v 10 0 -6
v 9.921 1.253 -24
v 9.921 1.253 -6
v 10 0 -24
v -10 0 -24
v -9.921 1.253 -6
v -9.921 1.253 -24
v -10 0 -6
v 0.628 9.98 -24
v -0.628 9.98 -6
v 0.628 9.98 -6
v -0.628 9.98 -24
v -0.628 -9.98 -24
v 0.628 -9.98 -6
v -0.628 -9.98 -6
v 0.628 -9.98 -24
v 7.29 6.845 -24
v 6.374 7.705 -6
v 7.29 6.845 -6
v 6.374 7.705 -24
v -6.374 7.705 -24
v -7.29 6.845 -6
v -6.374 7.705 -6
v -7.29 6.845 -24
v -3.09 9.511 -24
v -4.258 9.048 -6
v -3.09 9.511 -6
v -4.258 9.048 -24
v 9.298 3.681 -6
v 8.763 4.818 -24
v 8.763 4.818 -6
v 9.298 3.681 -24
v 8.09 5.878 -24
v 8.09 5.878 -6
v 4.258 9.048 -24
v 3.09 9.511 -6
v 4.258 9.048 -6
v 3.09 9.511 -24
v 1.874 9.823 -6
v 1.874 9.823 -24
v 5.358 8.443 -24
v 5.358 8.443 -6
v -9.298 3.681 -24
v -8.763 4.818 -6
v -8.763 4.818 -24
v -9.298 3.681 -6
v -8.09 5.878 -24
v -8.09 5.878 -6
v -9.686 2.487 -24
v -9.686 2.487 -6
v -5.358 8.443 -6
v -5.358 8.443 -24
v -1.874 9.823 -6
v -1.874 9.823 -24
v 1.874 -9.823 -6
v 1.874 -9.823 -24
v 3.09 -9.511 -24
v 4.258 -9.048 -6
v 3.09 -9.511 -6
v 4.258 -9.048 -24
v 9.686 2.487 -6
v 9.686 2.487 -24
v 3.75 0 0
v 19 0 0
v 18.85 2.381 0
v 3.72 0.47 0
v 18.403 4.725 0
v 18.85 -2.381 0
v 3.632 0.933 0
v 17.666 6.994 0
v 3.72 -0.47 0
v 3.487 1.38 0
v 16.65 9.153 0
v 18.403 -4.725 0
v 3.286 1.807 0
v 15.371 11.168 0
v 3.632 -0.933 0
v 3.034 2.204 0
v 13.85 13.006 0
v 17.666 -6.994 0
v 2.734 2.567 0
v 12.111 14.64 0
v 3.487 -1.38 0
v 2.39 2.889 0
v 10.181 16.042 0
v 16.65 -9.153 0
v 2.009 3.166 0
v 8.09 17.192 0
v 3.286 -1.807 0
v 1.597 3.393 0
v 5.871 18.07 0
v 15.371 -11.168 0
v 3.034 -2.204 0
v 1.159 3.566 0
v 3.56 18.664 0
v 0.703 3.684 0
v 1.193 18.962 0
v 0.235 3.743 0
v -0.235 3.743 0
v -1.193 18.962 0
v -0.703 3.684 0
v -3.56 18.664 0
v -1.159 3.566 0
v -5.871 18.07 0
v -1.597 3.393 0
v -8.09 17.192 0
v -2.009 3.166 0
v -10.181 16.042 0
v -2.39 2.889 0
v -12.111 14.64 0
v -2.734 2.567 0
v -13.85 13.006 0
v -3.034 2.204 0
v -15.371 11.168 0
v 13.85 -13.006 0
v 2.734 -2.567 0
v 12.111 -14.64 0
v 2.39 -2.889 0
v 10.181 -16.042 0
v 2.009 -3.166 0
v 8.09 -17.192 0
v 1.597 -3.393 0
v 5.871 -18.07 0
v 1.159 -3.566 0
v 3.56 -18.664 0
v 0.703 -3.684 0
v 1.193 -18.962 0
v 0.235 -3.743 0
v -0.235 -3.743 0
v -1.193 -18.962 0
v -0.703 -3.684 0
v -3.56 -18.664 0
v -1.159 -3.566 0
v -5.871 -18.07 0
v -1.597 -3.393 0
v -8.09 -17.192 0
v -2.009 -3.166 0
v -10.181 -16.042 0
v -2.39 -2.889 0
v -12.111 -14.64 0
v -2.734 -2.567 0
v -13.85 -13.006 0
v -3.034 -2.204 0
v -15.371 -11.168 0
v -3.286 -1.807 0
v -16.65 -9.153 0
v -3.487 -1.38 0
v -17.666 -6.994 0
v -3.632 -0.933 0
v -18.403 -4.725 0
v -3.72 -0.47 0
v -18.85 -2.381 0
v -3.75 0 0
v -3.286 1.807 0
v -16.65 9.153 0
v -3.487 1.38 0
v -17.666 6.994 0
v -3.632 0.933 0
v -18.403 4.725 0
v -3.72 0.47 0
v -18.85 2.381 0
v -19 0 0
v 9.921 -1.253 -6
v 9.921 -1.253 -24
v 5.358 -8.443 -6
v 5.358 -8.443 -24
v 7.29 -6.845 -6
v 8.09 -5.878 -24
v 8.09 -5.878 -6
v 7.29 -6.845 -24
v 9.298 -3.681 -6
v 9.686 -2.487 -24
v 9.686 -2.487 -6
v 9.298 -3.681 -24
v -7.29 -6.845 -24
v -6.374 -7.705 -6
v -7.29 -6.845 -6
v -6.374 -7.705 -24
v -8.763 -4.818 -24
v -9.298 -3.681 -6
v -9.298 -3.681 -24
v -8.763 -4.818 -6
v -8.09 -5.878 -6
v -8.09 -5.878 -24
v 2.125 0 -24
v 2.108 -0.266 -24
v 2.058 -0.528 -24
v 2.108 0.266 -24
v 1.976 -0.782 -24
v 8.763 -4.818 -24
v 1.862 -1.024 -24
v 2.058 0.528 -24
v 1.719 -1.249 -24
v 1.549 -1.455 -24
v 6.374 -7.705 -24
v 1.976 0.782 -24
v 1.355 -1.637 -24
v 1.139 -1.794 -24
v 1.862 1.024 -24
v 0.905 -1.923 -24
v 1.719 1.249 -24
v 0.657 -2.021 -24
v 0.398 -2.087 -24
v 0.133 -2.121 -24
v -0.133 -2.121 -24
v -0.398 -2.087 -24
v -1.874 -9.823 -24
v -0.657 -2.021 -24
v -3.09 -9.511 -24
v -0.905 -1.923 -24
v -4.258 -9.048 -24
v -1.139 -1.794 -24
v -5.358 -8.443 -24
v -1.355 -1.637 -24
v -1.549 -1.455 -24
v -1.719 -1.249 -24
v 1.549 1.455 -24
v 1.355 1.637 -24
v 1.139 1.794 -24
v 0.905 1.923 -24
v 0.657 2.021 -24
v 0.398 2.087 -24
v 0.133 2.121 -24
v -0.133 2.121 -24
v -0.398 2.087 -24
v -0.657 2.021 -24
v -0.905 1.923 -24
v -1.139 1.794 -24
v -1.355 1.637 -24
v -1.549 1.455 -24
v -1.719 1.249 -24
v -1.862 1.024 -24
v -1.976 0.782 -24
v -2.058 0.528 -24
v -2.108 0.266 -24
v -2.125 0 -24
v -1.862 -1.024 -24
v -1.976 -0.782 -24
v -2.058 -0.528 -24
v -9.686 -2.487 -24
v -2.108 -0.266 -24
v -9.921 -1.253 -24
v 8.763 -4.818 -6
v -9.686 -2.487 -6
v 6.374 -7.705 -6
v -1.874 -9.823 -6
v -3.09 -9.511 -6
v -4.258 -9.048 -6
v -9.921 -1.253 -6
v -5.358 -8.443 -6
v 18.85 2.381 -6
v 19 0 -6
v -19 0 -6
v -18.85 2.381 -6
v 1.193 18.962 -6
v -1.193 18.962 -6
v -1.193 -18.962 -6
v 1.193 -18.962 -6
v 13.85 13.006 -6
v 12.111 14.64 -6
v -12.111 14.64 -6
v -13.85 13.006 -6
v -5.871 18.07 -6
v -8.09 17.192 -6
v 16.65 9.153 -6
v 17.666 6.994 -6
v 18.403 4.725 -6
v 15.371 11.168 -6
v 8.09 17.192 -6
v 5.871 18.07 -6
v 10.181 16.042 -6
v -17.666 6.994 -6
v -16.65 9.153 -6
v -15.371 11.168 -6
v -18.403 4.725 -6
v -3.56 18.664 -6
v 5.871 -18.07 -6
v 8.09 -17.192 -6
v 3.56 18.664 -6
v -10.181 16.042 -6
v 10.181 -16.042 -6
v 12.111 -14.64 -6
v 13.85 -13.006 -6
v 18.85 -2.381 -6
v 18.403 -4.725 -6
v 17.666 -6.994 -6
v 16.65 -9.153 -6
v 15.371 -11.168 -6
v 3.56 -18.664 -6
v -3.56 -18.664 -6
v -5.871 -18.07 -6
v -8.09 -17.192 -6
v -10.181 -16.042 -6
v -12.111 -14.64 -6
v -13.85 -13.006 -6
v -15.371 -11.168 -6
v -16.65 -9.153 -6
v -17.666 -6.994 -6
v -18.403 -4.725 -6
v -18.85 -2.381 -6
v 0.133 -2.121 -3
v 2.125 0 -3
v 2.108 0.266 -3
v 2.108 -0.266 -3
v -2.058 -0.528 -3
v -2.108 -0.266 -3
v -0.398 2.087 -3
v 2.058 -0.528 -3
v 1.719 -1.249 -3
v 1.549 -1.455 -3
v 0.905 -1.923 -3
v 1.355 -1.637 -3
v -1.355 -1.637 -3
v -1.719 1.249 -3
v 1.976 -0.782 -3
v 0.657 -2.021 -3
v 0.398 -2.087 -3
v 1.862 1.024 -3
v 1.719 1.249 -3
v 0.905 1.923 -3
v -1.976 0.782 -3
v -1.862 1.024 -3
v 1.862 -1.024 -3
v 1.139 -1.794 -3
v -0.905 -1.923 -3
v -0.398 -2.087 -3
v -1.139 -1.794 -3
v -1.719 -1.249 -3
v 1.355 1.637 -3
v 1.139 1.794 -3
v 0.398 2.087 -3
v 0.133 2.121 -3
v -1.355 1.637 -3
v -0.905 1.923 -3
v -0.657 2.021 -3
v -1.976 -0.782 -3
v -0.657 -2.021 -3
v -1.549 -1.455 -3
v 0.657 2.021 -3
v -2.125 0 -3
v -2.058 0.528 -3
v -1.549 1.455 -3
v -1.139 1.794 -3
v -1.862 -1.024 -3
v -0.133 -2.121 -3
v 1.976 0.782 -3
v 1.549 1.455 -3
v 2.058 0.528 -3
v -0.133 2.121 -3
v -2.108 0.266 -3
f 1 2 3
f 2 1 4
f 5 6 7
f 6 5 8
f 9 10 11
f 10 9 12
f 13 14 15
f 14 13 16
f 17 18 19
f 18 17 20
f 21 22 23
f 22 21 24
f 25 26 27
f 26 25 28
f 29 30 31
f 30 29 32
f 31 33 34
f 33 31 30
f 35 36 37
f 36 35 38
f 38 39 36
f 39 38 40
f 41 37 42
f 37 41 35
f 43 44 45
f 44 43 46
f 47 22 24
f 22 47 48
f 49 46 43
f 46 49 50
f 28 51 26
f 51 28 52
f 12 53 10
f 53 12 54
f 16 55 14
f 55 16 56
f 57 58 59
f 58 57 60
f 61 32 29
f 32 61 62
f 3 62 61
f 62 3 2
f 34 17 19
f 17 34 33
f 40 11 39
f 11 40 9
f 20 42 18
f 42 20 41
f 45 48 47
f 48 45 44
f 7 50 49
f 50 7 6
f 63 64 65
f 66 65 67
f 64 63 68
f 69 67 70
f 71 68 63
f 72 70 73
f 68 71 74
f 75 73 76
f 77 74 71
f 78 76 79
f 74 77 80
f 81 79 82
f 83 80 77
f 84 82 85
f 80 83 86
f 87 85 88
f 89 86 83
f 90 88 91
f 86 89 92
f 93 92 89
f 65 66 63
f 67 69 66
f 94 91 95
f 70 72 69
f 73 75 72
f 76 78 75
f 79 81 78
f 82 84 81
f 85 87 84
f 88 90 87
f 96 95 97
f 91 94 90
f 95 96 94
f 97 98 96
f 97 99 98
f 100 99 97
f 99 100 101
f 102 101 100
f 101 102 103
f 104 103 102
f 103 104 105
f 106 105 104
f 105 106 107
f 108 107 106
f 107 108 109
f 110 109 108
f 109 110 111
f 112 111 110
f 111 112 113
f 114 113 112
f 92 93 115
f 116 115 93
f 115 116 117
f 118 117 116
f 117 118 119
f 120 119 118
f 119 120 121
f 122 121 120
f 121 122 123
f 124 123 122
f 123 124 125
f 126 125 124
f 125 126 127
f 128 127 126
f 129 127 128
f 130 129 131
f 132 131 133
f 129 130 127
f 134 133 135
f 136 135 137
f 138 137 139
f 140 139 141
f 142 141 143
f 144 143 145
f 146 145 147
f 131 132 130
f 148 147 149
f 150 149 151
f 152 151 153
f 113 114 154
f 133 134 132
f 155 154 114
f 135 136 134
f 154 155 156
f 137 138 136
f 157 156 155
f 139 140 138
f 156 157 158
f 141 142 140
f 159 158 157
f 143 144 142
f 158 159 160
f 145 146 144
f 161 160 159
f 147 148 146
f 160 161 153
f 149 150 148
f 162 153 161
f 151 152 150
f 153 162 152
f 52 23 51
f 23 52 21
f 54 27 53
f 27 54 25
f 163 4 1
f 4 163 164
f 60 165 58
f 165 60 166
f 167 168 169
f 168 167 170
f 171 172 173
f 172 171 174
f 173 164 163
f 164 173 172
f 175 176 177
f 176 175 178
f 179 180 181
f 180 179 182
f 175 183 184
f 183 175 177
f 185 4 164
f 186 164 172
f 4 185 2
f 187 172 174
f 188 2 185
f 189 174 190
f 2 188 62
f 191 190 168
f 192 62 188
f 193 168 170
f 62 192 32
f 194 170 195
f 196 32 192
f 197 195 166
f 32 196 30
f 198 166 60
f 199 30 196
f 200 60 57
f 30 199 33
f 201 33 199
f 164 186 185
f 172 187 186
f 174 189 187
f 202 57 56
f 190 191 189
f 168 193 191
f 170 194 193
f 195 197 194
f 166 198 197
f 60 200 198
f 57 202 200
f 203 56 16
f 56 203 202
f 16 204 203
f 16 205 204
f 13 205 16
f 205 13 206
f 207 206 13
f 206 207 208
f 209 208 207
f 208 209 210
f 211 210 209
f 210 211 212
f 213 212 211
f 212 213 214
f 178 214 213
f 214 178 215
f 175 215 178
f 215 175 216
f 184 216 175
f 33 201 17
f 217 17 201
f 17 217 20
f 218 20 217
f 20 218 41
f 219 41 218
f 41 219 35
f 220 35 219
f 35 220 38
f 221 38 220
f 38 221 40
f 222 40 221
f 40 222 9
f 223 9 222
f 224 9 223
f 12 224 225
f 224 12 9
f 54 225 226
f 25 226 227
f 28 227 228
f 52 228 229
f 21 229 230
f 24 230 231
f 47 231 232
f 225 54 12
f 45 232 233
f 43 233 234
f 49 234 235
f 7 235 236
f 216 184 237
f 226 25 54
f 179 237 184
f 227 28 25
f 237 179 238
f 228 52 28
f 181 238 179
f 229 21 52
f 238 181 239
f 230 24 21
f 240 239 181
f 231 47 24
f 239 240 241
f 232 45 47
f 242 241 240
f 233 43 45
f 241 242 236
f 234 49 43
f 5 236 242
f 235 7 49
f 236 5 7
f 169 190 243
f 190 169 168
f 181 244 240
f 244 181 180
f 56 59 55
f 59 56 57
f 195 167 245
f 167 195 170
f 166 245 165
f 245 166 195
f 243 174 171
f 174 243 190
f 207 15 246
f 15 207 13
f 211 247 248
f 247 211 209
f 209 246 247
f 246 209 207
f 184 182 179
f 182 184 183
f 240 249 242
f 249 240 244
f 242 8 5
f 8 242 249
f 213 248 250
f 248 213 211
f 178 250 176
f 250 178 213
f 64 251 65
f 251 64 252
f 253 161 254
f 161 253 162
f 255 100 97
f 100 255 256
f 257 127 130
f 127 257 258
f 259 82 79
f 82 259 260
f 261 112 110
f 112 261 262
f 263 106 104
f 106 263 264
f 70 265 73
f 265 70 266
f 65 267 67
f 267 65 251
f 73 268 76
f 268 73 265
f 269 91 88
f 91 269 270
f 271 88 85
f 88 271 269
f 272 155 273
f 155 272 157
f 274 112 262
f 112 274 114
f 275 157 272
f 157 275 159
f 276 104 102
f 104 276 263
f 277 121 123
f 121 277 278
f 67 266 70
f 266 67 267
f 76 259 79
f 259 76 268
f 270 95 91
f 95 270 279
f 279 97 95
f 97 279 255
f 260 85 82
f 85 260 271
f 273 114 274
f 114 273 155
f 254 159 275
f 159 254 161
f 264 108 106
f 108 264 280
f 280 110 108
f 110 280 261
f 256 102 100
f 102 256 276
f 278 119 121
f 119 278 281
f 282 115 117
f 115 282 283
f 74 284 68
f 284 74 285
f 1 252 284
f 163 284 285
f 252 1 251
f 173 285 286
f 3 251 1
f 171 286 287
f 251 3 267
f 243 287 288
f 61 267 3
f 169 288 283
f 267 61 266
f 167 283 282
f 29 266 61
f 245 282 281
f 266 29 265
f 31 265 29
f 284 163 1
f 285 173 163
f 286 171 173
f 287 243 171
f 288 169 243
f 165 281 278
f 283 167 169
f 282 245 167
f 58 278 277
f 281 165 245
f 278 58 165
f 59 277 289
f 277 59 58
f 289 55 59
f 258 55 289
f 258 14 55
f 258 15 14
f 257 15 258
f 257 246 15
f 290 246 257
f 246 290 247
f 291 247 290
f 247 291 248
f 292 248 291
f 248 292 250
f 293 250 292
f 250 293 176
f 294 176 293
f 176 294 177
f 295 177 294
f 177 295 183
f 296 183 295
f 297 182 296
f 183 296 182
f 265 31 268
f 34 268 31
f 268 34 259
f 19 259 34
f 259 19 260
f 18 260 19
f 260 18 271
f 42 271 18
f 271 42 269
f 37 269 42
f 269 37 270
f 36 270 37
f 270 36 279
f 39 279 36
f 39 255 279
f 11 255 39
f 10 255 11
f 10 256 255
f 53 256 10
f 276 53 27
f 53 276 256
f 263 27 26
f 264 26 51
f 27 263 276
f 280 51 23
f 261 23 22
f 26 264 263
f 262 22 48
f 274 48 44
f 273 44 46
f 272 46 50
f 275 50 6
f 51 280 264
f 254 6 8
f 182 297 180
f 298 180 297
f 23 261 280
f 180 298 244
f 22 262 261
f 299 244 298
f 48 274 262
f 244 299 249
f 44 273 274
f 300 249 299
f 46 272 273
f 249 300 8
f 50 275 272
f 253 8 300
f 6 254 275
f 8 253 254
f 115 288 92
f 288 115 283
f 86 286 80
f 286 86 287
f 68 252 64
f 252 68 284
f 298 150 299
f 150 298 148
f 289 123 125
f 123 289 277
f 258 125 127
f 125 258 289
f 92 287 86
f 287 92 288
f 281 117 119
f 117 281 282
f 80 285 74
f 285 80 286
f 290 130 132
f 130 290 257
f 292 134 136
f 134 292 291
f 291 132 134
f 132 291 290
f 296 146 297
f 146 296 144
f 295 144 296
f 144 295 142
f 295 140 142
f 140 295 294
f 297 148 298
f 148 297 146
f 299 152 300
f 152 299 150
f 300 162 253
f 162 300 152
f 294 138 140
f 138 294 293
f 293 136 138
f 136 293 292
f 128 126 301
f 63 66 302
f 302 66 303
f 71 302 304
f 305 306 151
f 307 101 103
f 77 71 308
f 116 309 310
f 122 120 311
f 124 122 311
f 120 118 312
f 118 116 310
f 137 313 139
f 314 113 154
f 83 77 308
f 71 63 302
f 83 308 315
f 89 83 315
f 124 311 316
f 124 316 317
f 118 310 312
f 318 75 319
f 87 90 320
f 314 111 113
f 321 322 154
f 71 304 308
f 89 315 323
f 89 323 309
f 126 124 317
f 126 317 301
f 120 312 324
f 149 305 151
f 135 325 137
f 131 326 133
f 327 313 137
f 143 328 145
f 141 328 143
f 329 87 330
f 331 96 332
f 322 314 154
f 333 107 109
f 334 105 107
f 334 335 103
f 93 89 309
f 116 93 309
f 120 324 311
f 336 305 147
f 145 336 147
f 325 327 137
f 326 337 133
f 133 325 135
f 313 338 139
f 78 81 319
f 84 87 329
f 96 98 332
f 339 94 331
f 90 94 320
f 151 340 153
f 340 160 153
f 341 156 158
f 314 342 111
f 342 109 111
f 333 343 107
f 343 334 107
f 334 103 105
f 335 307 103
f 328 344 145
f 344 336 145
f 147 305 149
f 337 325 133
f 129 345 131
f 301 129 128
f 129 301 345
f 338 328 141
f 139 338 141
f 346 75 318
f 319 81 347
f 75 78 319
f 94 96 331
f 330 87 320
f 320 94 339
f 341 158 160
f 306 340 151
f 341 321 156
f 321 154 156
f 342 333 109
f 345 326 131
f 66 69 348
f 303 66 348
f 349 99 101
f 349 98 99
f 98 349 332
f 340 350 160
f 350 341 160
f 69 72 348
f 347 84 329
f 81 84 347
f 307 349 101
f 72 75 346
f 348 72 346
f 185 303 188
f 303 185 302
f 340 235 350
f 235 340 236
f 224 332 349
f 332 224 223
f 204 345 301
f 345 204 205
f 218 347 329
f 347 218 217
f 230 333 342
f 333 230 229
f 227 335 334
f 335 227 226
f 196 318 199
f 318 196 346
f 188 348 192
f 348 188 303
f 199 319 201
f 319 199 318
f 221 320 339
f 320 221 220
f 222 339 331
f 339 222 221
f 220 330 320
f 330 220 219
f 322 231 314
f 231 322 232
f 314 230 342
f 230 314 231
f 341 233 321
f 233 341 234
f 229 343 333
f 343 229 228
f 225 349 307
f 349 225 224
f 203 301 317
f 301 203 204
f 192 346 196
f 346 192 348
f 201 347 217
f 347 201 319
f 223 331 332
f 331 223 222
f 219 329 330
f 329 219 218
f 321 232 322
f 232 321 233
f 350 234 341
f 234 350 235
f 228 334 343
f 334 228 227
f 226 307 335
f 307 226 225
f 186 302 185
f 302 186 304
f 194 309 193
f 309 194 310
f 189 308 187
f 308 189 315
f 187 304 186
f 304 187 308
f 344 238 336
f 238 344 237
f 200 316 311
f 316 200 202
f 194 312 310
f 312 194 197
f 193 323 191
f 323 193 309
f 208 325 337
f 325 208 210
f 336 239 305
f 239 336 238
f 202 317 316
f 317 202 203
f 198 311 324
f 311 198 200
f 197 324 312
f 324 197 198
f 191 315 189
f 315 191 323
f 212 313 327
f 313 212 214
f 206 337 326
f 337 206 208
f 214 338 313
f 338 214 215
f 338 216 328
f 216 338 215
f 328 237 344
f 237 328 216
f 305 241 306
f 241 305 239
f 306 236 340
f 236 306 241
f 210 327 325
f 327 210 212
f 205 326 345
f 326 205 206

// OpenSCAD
$fn = 50;


difference() {
	union() {
		translate(v = [0, 0, -24.0000000000]) {
			cylinder(h = 24, r = 10.0000000000);
		}
		translate(v = [0, 0, -6.0000000000]) {
			cylinder(h = 6, r = 19.0000000000);
		}
	}
	union() {
		translate(v = [0, 0, 0]) {
			rotate(a = [0, 0, 0]) {
				difference() {
					union() {
						#translate(v = [0, 0, -24.0000000000]) {
							cylinder(h = 24, r = 2.0000000000);
						}
						#translate(v = [0, 0, -3]) {
							cylinder(h = 3, r1 = 2.1250000000, r2 = 3.7500000000);
						}
						#translate(v = [0, 0, -24.0000000000]) {
							cylinder(h = 24, r = 2.1250000000);
						}
						#translate(v = [0, 0, -24.0000000000]) {
							cylinder(h = 24, r = 2.0000000000);
						}
					}
					union();
				}
			}
		}
	}
}
